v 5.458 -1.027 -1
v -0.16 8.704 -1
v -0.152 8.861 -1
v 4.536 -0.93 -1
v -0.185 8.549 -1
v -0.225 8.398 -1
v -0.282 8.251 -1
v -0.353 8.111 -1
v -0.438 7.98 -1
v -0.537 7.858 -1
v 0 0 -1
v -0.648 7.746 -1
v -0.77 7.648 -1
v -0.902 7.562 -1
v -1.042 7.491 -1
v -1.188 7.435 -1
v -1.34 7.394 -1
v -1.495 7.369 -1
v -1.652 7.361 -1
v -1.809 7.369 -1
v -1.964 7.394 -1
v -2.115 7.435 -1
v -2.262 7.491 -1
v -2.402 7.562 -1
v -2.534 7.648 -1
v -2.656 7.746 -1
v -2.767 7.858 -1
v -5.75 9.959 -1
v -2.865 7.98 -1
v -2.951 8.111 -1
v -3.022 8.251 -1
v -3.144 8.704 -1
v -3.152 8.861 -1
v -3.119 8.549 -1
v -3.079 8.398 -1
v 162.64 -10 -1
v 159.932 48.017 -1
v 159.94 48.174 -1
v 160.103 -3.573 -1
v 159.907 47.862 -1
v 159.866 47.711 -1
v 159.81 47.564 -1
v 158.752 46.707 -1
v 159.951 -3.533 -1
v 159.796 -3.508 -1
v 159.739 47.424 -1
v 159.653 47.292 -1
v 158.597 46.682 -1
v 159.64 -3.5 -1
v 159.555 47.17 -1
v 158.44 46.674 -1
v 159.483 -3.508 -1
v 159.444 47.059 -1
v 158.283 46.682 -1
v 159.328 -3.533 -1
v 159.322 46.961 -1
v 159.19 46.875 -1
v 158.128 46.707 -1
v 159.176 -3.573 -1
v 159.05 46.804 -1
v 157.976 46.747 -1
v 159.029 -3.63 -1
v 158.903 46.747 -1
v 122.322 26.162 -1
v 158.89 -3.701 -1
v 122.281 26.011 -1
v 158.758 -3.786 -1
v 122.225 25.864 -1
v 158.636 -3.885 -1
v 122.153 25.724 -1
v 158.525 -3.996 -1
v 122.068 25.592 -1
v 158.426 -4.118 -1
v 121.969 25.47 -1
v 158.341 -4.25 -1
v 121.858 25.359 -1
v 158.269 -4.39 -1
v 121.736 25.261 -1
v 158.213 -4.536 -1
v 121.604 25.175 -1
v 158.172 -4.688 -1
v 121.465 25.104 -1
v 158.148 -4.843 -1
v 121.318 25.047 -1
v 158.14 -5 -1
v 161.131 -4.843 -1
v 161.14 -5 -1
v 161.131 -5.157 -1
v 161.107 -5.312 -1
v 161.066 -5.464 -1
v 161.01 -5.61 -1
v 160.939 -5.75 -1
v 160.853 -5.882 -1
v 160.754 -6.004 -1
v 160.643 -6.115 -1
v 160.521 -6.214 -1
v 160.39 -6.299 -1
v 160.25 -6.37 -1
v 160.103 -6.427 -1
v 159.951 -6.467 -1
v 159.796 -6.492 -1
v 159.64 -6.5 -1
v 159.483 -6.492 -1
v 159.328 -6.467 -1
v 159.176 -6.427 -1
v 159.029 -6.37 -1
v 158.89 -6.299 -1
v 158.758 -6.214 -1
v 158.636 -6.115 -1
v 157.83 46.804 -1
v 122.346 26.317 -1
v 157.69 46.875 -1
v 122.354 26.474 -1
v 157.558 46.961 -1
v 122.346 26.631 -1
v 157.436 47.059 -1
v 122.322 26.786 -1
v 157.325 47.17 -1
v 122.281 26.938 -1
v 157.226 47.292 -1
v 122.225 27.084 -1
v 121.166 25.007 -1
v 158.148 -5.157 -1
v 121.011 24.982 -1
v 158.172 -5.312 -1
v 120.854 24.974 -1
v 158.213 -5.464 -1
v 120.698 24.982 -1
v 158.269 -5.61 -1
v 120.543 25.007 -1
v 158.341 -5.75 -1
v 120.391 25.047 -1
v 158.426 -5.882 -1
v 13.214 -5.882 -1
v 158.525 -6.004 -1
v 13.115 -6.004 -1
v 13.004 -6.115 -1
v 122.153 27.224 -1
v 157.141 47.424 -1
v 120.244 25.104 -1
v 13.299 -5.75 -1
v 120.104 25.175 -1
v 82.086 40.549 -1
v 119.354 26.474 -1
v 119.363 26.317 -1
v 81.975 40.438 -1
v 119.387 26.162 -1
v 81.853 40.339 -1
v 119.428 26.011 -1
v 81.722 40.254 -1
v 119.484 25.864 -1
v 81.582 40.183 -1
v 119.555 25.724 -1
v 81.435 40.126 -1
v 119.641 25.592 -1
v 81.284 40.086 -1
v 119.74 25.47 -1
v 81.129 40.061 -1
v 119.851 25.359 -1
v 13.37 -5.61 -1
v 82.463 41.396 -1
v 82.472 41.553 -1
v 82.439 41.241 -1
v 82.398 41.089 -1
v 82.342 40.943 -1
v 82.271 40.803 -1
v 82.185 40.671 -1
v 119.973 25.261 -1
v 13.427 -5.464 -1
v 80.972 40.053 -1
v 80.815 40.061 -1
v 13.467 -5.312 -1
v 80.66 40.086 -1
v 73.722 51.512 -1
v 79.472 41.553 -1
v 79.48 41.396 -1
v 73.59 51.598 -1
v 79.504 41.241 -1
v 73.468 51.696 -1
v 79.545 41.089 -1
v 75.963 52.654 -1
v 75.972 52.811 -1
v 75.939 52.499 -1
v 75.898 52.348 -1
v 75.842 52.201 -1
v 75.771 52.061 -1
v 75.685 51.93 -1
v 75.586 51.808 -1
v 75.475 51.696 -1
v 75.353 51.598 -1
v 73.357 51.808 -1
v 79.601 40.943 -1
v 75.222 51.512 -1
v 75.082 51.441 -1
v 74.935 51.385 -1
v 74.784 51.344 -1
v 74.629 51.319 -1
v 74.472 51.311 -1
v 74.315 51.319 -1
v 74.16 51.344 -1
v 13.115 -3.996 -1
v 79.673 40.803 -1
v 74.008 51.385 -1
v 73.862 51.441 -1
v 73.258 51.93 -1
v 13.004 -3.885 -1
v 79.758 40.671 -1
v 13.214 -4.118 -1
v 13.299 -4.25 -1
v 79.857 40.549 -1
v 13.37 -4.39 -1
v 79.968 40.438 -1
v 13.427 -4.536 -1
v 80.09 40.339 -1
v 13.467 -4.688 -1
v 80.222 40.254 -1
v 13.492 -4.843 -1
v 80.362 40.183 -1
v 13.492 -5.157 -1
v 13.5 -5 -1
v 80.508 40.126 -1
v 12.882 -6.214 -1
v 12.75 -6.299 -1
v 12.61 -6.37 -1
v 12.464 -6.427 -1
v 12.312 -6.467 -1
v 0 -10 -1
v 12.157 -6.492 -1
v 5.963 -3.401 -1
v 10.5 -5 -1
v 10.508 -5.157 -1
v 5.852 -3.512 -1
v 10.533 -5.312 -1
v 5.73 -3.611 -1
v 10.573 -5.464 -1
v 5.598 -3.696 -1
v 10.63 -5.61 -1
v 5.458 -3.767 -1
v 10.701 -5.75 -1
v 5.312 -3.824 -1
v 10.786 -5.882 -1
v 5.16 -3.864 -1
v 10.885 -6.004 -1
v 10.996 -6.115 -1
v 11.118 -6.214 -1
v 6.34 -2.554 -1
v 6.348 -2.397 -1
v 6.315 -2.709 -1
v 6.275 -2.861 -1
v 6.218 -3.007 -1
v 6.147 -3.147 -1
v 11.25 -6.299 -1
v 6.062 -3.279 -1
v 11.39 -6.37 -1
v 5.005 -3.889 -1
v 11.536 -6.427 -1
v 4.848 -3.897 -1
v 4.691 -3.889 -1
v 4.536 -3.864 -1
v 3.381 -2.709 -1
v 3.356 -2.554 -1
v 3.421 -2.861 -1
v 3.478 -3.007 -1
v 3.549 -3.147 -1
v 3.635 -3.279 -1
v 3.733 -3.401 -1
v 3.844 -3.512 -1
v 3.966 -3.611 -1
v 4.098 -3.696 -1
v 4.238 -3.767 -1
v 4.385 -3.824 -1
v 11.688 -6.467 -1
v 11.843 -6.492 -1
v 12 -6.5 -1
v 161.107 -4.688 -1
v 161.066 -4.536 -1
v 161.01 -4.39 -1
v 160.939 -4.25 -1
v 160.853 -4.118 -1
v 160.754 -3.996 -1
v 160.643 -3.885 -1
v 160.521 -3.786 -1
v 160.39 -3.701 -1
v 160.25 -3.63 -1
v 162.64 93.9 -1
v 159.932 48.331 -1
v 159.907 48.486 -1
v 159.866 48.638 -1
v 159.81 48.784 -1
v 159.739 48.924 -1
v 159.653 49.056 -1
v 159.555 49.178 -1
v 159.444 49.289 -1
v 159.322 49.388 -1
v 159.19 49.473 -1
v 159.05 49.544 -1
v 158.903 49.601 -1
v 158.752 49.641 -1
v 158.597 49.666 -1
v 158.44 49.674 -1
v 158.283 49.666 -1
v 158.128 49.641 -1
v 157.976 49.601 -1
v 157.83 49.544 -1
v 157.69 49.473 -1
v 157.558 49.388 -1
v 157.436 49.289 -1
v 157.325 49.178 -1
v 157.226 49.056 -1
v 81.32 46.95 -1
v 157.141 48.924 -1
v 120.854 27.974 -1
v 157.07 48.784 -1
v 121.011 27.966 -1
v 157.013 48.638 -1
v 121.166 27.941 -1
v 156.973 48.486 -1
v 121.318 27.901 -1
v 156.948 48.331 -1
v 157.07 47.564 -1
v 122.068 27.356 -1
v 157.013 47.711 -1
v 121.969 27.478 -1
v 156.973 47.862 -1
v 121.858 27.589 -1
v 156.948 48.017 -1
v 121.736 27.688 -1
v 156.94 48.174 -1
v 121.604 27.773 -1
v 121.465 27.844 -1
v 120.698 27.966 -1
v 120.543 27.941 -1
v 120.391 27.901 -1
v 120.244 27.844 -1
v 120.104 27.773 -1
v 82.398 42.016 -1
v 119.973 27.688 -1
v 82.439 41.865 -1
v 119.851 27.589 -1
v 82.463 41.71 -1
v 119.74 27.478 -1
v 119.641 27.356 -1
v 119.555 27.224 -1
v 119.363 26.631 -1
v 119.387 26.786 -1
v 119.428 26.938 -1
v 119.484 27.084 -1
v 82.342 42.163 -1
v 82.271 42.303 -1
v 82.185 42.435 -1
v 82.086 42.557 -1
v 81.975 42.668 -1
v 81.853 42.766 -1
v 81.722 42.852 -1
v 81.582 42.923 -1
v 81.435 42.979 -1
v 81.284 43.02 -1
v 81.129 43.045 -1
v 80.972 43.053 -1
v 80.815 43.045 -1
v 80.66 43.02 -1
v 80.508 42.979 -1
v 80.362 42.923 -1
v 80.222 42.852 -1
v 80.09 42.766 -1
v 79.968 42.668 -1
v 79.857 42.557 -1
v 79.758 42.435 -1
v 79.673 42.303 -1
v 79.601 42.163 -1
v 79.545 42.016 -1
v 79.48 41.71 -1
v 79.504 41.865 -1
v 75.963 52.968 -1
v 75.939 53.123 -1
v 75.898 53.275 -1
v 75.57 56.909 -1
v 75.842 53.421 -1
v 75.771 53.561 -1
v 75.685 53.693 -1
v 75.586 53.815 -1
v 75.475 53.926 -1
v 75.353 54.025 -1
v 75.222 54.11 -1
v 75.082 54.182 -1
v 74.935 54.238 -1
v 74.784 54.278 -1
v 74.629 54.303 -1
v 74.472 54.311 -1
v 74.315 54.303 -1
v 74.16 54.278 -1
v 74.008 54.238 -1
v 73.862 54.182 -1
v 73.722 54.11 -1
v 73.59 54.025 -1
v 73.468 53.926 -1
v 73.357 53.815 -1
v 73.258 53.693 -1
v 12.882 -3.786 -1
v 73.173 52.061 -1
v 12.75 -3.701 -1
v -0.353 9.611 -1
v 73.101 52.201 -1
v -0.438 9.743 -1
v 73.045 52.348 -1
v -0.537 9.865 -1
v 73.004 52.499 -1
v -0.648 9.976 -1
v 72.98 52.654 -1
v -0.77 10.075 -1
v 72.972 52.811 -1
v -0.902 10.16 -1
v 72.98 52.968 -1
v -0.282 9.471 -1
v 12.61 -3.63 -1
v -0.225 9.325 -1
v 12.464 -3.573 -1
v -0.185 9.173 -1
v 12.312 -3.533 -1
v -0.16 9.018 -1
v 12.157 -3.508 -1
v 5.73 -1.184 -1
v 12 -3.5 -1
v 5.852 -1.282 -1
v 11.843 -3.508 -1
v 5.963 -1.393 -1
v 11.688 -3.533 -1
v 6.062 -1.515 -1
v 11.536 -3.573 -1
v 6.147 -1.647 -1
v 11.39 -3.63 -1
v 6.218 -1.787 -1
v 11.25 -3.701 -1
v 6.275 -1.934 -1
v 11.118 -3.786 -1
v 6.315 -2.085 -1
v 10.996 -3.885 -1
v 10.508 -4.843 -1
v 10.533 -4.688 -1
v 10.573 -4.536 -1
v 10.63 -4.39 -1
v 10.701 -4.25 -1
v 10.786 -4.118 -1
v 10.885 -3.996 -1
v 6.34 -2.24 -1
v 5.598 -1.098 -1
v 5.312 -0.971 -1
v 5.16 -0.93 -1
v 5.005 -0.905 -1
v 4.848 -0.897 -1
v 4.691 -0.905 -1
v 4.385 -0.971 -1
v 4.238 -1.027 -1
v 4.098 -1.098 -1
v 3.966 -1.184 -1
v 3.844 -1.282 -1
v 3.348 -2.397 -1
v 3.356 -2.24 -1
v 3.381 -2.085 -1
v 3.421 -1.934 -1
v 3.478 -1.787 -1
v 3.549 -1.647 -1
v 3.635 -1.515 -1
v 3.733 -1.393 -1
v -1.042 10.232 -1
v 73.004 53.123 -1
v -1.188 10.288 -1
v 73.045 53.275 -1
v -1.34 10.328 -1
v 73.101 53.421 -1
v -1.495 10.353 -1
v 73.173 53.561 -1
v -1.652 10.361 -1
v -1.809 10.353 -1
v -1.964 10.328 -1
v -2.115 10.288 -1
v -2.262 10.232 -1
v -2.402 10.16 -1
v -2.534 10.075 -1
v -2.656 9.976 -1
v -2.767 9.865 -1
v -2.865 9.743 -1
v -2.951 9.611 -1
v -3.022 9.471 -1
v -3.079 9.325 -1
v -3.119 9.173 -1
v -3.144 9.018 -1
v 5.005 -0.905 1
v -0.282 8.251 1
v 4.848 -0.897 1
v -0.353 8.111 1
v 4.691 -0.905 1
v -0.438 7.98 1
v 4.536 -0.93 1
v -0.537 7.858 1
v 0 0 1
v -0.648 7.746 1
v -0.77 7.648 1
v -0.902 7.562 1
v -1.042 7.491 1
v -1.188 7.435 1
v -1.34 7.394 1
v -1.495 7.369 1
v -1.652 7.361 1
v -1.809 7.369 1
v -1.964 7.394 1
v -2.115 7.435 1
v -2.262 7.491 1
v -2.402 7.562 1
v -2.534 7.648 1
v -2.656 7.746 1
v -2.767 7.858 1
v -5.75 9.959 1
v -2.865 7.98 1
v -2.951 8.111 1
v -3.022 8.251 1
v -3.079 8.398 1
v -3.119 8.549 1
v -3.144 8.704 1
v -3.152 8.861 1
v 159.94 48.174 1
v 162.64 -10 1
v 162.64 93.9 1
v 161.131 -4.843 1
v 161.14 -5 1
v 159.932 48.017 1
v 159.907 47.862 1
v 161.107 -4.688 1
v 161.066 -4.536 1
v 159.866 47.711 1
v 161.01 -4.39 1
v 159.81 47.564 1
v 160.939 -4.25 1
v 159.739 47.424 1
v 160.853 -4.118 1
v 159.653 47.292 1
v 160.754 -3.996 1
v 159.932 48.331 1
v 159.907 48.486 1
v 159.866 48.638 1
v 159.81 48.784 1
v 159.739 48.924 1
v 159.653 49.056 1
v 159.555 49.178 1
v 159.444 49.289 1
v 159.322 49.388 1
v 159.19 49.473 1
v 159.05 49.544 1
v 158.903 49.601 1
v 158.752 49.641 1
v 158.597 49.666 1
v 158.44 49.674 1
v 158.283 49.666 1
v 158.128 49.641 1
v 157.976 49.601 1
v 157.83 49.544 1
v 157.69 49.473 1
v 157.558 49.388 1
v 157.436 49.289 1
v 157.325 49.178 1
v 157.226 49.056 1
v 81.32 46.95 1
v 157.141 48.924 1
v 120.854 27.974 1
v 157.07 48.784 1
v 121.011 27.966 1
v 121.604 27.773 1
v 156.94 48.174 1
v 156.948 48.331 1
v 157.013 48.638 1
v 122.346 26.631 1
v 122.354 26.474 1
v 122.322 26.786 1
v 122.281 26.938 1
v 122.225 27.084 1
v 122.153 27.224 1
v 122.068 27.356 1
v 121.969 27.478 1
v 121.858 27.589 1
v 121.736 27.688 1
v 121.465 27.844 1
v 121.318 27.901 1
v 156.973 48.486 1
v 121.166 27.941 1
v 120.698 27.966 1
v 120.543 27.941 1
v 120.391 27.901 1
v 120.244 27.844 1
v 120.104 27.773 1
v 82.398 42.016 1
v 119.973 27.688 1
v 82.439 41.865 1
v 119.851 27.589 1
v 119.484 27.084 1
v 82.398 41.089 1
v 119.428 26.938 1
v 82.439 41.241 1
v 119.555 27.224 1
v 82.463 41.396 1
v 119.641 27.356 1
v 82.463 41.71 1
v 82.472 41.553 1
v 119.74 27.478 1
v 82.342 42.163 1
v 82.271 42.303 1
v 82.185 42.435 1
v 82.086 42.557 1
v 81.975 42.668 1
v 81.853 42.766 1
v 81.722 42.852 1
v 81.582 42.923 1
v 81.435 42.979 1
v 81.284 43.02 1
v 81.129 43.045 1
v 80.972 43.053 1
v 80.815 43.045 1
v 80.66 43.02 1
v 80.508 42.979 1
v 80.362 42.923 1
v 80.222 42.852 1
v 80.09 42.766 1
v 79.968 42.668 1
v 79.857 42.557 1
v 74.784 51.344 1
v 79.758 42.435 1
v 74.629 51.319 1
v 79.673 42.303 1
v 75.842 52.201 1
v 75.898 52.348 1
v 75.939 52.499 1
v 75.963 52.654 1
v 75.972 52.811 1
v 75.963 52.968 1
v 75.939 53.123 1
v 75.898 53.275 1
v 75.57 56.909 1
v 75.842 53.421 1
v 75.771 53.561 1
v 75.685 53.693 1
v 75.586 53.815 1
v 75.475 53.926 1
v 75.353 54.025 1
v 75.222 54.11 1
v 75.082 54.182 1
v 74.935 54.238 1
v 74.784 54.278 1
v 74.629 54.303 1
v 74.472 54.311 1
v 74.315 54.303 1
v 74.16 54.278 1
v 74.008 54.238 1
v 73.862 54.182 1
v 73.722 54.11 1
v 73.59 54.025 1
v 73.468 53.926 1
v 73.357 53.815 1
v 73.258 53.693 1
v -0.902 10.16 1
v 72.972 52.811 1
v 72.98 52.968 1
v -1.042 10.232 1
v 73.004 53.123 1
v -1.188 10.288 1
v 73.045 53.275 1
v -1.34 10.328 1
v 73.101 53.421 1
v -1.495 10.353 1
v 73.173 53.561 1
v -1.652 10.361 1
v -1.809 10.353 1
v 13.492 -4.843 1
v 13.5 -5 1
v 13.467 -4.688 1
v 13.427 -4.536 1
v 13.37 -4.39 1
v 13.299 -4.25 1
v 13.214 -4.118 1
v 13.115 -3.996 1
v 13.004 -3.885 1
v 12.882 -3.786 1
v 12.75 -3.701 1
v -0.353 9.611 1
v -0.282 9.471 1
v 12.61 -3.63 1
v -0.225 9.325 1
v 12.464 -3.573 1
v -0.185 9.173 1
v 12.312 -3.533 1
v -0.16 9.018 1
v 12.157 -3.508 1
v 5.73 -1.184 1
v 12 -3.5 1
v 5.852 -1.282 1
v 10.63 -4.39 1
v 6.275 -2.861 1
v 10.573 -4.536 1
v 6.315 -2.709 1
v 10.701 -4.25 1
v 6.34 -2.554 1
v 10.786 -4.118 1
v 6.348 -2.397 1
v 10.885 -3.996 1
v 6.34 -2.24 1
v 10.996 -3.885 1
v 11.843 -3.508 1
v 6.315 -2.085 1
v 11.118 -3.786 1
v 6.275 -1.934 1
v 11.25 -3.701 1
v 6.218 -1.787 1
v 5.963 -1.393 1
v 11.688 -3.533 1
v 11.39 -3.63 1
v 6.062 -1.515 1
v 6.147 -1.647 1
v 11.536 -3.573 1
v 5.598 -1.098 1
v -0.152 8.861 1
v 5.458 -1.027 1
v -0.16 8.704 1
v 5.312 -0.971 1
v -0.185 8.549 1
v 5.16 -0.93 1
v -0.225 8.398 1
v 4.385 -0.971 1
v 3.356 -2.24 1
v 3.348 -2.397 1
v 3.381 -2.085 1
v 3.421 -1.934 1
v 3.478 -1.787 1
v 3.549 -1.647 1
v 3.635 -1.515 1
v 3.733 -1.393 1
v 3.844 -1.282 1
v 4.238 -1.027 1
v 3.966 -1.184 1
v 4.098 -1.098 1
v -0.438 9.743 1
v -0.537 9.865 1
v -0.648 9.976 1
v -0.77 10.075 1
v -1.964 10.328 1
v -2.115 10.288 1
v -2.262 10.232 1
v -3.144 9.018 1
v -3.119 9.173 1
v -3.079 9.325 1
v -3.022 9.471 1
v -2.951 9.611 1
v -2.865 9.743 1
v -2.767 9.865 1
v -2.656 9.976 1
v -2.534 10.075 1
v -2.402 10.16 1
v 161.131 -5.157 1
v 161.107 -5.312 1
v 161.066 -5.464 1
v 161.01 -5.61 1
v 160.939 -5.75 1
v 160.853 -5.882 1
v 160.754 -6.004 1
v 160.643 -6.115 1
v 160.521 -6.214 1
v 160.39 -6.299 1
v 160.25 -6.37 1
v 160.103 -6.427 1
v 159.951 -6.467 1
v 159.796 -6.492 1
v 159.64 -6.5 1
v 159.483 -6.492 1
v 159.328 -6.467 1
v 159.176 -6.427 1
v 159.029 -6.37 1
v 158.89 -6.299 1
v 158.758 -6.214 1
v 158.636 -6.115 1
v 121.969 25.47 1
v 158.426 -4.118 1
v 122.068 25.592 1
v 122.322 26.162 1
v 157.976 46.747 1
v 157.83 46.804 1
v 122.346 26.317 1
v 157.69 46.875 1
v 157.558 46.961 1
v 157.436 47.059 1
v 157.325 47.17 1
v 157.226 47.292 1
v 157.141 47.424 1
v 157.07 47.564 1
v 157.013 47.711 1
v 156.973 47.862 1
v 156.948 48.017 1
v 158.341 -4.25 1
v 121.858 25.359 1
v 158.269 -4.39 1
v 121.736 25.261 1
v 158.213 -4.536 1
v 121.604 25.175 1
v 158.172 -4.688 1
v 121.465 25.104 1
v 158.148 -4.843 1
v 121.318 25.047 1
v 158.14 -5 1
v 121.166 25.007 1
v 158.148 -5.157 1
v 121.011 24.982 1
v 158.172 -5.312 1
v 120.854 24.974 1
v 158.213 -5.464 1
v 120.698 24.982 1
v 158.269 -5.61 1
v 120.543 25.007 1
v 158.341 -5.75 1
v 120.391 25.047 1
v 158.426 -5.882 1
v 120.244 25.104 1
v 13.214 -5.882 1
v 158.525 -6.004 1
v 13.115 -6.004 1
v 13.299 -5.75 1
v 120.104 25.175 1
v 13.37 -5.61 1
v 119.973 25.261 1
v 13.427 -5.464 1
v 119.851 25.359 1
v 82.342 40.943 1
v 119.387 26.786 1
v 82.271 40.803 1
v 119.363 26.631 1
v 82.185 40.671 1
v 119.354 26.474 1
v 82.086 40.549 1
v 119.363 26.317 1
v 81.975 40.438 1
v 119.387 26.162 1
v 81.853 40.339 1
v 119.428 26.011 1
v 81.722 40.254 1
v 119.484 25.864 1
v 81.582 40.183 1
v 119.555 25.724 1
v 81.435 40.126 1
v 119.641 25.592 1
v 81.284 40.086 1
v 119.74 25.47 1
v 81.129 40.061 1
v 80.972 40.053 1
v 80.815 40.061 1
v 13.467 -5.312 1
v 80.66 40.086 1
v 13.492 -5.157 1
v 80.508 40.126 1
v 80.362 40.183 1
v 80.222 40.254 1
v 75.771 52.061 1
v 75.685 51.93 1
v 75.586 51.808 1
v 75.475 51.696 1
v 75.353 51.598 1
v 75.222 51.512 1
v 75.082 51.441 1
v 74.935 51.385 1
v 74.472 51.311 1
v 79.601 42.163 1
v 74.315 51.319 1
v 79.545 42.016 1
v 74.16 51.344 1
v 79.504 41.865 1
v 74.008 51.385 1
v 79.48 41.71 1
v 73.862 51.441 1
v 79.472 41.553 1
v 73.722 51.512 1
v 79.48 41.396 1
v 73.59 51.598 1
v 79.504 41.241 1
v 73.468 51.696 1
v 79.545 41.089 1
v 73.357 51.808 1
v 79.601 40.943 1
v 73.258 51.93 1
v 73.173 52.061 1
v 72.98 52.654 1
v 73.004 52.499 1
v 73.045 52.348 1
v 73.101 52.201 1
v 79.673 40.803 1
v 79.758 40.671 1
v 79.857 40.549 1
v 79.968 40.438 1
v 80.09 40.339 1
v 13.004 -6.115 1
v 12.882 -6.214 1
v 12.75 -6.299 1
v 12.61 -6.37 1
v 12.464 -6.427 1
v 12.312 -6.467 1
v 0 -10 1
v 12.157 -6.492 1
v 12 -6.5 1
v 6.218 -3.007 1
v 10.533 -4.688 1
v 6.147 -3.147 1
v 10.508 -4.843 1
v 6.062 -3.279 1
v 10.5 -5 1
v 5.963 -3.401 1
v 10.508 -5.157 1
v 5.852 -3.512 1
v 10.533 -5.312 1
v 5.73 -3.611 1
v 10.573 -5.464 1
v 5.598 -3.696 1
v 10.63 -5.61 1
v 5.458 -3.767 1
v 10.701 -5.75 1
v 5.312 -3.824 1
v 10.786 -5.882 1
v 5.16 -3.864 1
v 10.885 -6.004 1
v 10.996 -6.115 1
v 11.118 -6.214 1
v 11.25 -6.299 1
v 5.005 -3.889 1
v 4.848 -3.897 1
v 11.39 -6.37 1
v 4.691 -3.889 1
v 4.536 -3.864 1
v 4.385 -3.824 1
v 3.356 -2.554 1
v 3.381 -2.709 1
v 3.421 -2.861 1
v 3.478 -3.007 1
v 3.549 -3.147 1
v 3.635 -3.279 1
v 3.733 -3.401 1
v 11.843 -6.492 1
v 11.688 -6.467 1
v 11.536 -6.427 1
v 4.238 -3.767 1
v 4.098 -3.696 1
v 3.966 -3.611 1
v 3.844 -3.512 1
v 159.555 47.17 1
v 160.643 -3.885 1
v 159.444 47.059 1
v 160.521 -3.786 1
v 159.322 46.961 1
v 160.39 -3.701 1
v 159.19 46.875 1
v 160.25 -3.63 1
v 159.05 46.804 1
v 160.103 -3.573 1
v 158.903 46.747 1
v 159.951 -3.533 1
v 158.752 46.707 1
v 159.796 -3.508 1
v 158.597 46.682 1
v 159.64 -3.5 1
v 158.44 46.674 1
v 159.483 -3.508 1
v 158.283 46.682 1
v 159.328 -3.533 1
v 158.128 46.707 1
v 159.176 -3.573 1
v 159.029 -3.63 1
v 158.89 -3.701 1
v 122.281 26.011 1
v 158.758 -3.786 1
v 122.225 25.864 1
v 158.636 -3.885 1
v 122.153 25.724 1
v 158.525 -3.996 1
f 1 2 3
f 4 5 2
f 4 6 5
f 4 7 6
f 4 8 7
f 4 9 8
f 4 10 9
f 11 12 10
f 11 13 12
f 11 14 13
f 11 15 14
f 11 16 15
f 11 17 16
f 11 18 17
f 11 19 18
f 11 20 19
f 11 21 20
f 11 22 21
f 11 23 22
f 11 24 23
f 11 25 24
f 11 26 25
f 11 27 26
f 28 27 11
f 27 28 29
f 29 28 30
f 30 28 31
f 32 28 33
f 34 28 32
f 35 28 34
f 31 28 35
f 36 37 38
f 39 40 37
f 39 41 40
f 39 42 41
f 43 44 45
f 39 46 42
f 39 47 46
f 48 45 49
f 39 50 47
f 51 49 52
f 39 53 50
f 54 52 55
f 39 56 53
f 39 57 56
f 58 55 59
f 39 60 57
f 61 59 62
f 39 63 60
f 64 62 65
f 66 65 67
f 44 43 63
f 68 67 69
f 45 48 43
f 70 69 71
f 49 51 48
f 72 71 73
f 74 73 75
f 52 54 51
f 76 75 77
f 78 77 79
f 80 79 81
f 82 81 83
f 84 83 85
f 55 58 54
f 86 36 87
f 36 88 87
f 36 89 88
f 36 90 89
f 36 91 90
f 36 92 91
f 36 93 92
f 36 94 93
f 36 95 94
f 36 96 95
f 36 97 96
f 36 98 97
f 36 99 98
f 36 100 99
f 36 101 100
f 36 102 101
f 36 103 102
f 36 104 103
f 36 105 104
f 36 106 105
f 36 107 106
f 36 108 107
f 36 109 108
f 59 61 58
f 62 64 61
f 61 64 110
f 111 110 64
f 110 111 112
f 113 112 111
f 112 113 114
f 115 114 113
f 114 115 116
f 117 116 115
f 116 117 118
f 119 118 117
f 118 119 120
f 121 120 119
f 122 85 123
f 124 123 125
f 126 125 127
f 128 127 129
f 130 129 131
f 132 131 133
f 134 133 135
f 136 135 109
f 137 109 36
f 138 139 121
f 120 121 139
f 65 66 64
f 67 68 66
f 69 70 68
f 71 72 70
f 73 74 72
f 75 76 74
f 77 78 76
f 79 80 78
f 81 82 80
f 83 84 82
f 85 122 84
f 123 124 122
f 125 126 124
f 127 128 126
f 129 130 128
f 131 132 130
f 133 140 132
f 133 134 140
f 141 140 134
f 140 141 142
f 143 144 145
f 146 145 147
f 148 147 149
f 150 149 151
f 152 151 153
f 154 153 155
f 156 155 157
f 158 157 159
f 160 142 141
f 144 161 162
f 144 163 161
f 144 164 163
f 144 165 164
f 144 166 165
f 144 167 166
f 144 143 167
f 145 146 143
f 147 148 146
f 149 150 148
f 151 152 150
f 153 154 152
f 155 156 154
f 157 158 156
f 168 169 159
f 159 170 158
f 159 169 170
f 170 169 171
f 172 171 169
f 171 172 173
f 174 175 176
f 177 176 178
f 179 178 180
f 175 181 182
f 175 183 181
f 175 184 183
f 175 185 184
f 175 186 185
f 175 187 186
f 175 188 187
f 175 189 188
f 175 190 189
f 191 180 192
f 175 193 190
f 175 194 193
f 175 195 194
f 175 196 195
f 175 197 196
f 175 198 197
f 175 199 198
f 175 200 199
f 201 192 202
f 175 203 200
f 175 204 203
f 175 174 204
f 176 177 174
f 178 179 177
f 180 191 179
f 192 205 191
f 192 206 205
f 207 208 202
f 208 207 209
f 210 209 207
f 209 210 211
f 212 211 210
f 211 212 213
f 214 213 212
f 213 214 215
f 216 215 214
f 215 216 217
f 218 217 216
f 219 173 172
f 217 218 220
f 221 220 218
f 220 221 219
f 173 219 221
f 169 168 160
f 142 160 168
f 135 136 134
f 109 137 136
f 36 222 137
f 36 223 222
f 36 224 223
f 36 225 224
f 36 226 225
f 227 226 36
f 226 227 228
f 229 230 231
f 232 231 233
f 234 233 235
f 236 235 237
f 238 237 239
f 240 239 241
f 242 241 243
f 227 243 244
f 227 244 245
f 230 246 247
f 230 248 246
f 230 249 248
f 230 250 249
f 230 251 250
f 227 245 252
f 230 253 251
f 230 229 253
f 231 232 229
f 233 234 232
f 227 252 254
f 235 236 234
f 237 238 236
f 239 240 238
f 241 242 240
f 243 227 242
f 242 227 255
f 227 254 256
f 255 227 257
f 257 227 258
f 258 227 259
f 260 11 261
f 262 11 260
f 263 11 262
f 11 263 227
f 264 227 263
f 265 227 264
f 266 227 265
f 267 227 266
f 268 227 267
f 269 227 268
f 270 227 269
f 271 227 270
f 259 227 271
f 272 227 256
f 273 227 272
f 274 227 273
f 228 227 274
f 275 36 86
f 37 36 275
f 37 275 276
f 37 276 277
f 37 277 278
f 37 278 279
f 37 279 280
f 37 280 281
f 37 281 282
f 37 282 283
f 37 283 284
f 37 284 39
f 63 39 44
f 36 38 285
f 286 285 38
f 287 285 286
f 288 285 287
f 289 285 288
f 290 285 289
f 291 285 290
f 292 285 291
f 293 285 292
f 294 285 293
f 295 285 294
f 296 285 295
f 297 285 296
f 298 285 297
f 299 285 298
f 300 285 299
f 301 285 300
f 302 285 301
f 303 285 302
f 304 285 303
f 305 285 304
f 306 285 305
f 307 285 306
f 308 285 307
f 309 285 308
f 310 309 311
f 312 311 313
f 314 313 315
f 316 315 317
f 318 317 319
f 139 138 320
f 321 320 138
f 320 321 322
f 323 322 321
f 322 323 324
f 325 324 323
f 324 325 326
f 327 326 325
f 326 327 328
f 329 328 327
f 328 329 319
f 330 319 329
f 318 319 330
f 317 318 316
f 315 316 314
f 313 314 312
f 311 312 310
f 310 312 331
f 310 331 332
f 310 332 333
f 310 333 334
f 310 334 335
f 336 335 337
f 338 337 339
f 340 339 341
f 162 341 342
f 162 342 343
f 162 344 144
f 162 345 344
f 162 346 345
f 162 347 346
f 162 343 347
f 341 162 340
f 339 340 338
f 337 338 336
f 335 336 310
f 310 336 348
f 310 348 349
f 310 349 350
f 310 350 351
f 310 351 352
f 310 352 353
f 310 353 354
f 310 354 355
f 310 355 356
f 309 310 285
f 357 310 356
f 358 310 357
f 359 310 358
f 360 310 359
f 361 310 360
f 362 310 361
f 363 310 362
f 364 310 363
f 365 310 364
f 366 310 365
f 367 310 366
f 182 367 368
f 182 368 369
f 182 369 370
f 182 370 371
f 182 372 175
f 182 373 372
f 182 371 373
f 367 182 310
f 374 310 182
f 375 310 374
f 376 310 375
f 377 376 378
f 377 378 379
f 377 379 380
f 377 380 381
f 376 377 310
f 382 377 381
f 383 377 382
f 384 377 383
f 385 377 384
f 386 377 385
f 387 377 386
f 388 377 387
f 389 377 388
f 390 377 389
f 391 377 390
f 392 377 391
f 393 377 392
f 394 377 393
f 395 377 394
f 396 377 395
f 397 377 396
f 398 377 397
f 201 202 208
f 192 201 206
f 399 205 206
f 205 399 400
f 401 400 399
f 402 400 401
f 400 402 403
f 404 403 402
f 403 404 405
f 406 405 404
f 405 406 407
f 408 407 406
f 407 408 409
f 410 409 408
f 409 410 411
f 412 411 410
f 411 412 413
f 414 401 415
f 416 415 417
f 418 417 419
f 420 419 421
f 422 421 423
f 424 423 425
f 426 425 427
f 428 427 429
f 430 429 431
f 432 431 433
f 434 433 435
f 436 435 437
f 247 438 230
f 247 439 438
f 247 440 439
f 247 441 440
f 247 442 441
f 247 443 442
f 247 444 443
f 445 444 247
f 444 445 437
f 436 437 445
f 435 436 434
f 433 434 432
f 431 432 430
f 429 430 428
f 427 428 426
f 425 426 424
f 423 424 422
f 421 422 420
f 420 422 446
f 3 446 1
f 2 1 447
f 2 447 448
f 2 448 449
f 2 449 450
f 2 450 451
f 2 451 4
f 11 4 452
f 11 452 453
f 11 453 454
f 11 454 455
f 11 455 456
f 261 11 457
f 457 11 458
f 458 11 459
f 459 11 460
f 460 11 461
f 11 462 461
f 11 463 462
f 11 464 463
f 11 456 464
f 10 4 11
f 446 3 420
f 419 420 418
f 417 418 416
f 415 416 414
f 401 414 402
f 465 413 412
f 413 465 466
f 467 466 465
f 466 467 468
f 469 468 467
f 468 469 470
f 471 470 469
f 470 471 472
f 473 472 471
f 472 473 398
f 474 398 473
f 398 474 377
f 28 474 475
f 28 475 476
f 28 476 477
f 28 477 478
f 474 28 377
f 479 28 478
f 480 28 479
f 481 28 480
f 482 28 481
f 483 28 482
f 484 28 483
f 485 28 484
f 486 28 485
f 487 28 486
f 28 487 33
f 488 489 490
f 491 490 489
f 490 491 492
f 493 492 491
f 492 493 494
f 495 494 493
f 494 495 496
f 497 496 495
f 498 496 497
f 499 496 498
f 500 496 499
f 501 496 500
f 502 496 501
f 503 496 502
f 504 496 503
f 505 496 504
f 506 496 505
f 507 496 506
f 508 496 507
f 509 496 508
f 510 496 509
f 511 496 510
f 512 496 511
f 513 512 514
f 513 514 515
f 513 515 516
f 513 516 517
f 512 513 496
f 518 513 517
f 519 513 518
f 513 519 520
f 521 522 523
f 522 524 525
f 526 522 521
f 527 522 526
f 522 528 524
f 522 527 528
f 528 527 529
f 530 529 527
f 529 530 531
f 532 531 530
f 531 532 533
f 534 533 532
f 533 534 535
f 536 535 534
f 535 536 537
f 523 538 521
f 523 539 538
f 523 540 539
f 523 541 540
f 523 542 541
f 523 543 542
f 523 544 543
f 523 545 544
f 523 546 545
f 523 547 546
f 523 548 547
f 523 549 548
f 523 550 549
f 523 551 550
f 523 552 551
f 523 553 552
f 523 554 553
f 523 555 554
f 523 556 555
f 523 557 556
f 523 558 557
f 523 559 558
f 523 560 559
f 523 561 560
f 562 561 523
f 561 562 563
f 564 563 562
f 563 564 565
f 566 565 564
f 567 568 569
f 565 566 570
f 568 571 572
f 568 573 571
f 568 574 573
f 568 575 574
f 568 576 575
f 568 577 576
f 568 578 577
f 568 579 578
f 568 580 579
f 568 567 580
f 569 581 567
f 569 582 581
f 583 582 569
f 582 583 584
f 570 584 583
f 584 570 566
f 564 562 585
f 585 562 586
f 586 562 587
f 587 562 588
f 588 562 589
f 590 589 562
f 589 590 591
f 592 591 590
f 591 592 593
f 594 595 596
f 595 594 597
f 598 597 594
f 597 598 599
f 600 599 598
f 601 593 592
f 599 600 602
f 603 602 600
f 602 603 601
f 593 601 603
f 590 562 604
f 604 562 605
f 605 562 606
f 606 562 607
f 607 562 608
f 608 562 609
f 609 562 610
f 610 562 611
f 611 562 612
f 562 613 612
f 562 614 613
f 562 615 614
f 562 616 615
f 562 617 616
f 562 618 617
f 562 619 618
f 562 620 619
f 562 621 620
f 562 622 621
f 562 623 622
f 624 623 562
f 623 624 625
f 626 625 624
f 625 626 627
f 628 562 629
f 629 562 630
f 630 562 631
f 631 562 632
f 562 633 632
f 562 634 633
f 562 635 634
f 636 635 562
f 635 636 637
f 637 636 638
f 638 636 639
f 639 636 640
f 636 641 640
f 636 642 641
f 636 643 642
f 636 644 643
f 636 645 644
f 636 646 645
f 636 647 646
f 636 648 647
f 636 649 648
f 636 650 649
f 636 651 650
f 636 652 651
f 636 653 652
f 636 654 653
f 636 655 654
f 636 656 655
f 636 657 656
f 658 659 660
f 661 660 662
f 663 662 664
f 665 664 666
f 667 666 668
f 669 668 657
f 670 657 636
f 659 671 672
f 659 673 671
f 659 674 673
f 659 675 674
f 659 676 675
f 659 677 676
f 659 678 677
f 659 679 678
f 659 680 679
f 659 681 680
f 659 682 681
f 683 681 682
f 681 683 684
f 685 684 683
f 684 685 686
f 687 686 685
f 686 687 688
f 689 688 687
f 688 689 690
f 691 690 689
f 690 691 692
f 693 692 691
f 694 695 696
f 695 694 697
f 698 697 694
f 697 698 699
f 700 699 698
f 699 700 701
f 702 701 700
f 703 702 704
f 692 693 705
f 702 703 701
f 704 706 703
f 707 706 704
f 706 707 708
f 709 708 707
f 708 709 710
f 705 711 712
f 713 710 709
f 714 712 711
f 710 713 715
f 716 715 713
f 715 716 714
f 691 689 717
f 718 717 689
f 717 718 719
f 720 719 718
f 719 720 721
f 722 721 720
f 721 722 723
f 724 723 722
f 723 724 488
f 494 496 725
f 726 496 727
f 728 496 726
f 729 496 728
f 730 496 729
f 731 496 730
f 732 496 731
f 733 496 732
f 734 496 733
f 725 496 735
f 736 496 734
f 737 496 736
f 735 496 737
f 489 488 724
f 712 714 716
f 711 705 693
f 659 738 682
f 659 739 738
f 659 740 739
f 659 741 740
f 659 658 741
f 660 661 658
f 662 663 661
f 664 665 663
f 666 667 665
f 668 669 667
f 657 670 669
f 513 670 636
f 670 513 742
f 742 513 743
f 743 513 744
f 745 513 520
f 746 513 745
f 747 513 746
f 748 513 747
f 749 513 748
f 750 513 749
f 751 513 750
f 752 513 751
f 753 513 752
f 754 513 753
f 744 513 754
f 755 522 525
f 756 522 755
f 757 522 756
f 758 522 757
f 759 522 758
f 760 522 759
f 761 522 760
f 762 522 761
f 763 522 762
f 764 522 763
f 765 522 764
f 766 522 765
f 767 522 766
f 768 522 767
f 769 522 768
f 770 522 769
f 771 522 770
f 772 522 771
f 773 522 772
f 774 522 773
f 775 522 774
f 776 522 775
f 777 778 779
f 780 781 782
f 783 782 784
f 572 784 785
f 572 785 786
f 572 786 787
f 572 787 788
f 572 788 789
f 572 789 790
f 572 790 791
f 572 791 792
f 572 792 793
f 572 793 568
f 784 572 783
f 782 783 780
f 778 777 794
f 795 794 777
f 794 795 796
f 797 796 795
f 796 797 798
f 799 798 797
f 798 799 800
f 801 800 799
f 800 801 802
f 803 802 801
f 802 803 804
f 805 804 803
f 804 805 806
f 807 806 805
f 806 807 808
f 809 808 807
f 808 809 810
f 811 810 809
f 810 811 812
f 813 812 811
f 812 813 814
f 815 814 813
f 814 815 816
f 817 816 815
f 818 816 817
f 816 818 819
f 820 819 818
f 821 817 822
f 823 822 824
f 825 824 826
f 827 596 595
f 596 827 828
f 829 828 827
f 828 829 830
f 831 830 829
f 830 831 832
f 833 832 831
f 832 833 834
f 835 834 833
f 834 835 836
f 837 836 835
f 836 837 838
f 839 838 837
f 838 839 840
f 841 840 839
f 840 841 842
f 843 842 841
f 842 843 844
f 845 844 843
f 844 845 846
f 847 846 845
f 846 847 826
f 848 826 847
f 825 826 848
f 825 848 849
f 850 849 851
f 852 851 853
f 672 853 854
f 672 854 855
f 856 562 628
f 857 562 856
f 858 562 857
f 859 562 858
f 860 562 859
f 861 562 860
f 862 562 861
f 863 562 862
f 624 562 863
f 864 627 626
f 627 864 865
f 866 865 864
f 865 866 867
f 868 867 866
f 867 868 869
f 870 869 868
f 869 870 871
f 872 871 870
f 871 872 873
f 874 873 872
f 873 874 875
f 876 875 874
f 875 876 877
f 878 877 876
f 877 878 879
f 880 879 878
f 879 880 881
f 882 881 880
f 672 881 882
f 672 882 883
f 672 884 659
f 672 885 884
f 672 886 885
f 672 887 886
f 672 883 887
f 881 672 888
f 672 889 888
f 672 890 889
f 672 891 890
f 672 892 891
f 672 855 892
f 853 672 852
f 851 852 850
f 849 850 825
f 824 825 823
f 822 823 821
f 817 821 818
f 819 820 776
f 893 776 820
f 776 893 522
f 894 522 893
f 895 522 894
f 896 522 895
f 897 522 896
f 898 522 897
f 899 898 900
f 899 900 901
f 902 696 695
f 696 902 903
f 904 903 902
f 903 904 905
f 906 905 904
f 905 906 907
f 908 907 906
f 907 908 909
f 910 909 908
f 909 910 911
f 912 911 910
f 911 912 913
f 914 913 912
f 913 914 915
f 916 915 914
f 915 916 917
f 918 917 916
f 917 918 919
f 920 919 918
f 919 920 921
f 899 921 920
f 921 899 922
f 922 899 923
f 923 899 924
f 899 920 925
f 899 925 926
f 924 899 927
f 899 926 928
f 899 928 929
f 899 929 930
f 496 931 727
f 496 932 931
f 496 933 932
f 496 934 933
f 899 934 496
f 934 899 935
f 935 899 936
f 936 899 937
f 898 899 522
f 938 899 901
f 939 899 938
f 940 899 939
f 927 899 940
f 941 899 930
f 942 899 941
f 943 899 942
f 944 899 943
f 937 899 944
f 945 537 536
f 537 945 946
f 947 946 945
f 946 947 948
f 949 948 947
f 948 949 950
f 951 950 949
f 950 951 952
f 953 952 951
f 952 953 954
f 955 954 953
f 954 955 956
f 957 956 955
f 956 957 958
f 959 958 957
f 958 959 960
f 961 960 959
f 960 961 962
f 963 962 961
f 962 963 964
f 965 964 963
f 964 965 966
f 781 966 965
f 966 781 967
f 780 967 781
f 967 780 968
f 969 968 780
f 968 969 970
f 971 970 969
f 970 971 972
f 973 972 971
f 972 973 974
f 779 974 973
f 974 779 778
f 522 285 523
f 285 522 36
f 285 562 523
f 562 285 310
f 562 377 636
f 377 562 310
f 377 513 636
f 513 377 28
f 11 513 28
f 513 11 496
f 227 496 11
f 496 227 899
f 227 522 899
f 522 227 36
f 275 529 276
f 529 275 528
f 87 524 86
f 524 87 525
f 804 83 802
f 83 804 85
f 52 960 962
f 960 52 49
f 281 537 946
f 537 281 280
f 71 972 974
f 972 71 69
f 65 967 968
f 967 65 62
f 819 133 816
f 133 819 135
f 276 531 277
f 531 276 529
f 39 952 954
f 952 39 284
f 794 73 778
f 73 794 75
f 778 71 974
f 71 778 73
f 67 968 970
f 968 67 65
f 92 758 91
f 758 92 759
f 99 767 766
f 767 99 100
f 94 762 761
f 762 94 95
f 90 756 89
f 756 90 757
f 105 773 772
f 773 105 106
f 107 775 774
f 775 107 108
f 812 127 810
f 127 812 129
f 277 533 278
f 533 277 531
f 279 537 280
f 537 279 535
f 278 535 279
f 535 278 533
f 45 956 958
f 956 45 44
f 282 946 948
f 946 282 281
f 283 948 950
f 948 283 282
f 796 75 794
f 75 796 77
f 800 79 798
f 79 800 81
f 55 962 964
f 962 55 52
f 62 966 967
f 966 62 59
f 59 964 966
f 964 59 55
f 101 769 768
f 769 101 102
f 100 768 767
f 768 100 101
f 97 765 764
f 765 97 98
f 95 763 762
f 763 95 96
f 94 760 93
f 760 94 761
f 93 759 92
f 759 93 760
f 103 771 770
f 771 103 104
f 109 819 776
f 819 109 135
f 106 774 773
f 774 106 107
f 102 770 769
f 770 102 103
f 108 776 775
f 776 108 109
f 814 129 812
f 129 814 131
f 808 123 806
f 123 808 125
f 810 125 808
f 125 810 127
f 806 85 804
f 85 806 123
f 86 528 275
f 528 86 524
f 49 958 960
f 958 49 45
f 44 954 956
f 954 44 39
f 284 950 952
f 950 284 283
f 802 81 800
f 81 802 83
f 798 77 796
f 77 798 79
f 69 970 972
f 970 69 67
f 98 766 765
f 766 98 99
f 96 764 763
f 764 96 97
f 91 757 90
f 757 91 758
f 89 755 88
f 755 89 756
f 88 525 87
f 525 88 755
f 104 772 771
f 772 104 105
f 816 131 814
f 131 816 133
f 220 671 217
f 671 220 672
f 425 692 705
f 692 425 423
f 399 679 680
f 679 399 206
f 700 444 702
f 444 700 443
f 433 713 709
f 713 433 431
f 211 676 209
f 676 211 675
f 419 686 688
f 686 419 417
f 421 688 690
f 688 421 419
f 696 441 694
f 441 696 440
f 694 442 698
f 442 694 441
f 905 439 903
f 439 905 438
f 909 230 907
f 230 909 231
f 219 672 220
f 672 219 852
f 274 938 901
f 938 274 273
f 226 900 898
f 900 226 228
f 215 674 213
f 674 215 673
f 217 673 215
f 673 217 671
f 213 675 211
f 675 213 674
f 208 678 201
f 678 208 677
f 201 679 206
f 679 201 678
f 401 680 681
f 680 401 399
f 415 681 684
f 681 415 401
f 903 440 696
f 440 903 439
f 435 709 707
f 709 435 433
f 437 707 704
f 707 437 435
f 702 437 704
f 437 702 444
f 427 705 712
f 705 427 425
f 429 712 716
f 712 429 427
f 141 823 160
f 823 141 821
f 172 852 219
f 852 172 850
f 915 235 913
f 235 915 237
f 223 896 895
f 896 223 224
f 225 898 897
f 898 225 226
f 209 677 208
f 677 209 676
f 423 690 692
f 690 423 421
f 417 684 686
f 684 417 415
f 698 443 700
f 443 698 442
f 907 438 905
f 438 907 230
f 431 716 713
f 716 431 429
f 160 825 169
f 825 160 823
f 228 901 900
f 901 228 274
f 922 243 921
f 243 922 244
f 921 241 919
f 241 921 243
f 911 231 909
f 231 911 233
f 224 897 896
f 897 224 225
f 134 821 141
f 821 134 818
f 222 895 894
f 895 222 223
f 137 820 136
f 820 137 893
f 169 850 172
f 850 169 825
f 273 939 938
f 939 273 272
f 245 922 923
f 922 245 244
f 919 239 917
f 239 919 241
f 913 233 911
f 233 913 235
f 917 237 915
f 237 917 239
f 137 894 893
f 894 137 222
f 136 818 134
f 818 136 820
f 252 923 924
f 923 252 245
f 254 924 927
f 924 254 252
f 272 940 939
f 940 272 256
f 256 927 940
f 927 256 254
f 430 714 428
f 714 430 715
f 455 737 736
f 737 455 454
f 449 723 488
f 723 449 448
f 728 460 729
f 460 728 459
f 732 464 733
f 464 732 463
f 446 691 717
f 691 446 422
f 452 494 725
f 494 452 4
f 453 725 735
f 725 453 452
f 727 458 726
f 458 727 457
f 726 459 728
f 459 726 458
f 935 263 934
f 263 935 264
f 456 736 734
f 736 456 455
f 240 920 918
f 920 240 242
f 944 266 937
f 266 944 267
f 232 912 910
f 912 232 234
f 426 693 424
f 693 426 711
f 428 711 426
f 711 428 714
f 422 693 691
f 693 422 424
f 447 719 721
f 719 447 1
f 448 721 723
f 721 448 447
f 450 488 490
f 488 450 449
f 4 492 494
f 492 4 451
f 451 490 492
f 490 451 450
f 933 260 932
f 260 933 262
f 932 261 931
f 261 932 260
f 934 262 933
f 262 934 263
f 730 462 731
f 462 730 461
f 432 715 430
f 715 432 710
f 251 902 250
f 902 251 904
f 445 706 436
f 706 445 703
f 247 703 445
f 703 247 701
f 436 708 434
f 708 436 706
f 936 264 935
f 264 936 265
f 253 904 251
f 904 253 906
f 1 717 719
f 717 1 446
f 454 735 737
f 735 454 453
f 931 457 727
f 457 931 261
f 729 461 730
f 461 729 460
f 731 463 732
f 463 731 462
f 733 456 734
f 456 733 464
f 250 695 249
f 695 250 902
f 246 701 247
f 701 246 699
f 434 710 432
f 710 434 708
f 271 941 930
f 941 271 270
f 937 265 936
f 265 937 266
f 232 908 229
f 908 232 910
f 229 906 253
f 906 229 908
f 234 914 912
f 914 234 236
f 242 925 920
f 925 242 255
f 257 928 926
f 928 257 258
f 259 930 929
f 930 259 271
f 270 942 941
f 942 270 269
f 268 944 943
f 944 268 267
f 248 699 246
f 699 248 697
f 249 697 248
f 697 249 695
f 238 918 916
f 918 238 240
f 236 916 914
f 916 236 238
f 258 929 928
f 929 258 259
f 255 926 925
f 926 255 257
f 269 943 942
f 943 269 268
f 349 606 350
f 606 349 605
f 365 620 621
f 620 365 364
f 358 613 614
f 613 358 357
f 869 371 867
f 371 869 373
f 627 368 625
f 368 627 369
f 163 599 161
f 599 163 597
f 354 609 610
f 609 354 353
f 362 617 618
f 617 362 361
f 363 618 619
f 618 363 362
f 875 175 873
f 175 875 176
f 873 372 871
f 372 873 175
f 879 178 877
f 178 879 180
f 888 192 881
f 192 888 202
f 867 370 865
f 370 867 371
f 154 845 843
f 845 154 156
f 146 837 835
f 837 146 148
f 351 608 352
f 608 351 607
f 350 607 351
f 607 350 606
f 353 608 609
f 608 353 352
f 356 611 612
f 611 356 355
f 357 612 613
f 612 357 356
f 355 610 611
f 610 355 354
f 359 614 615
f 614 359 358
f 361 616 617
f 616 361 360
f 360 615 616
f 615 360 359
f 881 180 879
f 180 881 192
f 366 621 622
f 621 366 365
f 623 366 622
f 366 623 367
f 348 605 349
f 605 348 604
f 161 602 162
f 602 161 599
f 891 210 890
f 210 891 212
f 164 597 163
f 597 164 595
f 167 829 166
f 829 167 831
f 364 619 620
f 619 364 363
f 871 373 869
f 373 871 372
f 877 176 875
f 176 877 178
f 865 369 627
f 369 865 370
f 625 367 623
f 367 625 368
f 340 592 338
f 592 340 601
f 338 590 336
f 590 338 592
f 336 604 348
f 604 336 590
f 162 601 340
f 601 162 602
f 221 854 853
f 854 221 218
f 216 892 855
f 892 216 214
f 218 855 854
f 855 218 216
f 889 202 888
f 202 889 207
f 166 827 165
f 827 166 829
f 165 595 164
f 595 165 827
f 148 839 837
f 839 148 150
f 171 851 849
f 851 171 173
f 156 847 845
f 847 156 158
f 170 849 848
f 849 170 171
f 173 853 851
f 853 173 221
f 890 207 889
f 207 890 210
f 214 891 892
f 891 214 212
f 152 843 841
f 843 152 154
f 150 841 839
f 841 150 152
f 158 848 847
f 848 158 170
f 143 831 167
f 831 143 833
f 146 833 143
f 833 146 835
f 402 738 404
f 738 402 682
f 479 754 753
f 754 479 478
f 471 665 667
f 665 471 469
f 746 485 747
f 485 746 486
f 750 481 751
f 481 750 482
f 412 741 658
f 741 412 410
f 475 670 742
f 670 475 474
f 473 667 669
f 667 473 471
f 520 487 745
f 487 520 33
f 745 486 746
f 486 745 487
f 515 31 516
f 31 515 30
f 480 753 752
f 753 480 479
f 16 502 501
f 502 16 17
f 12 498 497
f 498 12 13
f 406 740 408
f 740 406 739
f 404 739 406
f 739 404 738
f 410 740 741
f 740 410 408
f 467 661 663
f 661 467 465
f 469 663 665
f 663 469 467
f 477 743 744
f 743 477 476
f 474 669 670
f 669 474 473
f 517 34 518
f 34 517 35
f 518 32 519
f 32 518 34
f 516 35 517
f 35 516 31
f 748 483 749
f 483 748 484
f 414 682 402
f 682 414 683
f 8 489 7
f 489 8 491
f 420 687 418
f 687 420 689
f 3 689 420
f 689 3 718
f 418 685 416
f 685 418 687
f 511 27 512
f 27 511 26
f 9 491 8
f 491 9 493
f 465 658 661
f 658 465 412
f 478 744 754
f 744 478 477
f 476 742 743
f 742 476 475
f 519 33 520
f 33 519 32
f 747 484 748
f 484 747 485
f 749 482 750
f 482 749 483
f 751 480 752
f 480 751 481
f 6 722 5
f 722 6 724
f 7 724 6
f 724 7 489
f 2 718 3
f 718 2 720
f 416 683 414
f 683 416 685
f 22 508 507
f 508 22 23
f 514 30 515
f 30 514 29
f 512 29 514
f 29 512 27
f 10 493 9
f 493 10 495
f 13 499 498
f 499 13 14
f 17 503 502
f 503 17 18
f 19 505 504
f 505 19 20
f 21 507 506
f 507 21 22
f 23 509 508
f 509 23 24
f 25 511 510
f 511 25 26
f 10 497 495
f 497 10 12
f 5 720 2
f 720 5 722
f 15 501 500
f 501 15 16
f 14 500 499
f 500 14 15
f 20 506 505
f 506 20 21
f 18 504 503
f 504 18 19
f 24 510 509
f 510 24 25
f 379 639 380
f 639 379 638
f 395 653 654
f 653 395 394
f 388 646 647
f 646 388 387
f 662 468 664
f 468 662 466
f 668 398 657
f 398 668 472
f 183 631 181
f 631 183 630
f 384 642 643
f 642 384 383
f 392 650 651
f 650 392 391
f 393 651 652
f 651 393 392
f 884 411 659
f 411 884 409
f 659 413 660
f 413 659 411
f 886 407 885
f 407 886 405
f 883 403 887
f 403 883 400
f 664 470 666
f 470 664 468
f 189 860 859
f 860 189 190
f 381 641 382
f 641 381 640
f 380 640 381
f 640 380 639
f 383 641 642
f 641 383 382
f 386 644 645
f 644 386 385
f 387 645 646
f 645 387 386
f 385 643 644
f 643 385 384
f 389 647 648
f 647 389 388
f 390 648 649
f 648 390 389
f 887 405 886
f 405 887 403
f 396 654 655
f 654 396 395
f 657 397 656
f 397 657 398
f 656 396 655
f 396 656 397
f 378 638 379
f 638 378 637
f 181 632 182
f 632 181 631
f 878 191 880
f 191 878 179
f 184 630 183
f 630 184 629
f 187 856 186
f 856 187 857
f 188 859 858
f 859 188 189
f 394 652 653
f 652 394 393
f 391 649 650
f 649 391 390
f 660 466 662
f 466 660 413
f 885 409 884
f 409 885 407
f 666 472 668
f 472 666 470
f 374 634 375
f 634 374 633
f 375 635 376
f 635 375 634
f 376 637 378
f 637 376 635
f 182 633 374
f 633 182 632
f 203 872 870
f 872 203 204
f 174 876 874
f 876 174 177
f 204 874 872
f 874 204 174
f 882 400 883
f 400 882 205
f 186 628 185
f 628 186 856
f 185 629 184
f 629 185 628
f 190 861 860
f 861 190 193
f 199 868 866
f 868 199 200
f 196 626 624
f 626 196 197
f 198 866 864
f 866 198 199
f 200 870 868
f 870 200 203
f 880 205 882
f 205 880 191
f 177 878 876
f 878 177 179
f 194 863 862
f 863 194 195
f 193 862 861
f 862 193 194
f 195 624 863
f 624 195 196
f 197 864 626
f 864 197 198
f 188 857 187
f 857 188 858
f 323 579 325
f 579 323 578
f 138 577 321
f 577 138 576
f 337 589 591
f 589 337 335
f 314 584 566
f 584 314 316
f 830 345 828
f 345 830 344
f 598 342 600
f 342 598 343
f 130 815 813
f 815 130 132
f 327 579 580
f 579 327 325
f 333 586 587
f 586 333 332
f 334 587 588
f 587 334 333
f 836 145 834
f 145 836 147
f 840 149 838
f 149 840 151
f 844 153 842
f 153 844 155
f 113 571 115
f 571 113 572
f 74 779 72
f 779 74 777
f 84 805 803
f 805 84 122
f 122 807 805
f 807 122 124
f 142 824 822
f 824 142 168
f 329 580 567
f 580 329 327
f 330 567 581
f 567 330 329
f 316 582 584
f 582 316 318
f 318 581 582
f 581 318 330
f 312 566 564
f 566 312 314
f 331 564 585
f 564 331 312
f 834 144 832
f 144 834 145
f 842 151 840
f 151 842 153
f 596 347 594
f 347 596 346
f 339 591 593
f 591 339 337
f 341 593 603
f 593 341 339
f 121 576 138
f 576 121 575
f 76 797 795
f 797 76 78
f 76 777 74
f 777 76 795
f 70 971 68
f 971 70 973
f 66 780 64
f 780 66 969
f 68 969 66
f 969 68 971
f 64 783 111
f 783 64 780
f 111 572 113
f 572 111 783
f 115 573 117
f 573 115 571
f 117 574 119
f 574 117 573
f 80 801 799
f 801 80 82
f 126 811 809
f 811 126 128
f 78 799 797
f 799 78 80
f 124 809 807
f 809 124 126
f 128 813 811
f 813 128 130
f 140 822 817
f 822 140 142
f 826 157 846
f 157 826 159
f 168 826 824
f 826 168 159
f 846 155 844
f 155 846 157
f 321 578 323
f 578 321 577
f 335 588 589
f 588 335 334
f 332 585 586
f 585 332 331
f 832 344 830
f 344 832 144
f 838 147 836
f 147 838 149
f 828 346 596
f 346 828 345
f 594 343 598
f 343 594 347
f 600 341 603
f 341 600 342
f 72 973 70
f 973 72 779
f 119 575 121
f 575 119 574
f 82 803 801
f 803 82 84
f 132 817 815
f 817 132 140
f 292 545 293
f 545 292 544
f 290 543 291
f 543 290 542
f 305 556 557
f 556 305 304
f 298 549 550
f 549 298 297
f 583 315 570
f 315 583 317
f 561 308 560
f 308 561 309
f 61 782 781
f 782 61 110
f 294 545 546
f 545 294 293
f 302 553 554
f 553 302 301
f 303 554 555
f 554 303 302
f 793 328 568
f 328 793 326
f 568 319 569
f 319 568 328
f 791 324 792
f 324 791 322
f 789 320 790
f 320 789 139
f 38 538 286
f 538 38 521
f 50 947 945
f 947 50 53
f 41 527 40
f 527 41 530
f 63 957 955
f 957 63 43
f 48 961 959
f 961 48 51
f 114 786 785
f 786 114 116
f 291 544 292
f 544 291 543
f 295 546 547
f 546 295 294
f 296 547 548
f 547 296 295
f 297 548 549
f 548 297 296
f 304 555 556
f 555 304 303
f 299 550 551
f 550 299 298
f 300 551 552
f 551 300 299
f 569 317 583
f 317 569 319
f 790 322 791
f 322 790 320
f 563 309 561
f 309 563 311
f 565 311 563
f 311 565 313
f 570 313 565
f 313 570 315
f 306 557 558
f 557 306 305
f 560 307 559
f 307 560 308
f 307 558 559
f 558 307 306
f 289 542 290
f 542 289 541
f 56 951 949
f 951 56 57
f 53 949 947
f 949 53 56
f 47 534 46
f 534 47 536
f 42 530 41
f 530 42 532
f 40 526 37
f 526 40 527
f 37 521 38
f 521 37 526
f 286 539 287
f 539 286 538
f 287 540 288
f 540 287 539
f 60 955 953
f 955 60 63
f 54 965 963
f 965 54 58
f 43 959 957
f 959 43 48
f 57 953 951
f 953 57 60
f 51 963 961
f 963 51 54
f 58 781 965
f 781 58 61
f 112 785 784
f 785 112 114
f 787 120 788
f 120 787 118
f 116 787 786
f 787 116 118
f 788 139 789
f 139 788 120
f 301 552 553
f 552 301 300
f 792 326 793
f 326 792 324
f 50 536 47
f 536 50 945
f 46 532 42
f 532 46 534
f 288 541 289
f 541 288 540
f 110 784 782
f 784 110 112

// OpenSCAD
degree=30;

card_size=93.9;
size_out = 10;

wall_size=2;
wall_size_small=1.5;
screw_size=3;

square_size=10;

size_z=36.5;
card_slot=4;

difference()
{
	linear_extrude(wall_size,center=true)
	
	{
		polygon([[0,0],[cos(degree)*card_size*2,0],[cos(degree)*card_size*2,sin(degree)*card_size*2]]);
		rotate([0,0,degree])
		square([card_size,wall_size_small+4+2*screw_size]);
		
		translate([cos(degree)*card_size,-square_size/2,0])
		square([cos(degree)*card_size*2,square_size],center=true);
	}
	
	translate([cos(degree)*card_size*2-screw_size,-square_size+screw_size+wall_size,0])
	cylinder(h=wall_size+1, d=screw_size,$fn=60, center=true);
	
	translate([screw_size+screw_size*3,-square_size+screw_size+wall_size,0])
	#cylinder(h=wall_size+1, d=screw_size,$fn=60, center=true);
	
	rotate([0,0,degree])
	translate([screw_size,-screw_size-wall_size_small,0])
	cylinder(h=wall_size+1, d=screw_size,$fn=60, center=true);
	
	rotate([0,0,degree])
	translate([screw_size+((card_size/2-screw_size))*2,-screw_size-wall_size_small,0])
	cylinder(h=wall_size+1, d=screw_size,$fn=60, center=true);
	
	rotate([0,0,degree])
	translate([screw_size,wall_size_small+4+2*screw_size-screw_size,0])
	cylinder(h=wall_size+1, d=screw_size,$fn=60, center=true);
	
	rotate([0,0,degree])
	translate([screw_size+((card_size/2-screw_size))*2,wall_size_small+4+2*screw_size-screw_size,0])
	cylinder(h=wall_size+1, d=screw_size,$fn=60, center=true);
	
	rotate([0,0,degree])
	translate([card_size+screw_size*8,-size_z+card_slot-wall_size-screw_size,0])
	cylinder(h=wall_size+1, d=screw_size,$fn=60, center=true);
	
	rotate([0,0,degree])
	translate([card_size+screw_size*8+(((card_size-size_out+screw_size*2+wall_size_small)/2-screw_size*8))*2,-size_z+card_slot-wall_size-screw_size,0])
	cylinder(h=wall_size+1, d=screw_size,$fn=60, center=true);
	
}
